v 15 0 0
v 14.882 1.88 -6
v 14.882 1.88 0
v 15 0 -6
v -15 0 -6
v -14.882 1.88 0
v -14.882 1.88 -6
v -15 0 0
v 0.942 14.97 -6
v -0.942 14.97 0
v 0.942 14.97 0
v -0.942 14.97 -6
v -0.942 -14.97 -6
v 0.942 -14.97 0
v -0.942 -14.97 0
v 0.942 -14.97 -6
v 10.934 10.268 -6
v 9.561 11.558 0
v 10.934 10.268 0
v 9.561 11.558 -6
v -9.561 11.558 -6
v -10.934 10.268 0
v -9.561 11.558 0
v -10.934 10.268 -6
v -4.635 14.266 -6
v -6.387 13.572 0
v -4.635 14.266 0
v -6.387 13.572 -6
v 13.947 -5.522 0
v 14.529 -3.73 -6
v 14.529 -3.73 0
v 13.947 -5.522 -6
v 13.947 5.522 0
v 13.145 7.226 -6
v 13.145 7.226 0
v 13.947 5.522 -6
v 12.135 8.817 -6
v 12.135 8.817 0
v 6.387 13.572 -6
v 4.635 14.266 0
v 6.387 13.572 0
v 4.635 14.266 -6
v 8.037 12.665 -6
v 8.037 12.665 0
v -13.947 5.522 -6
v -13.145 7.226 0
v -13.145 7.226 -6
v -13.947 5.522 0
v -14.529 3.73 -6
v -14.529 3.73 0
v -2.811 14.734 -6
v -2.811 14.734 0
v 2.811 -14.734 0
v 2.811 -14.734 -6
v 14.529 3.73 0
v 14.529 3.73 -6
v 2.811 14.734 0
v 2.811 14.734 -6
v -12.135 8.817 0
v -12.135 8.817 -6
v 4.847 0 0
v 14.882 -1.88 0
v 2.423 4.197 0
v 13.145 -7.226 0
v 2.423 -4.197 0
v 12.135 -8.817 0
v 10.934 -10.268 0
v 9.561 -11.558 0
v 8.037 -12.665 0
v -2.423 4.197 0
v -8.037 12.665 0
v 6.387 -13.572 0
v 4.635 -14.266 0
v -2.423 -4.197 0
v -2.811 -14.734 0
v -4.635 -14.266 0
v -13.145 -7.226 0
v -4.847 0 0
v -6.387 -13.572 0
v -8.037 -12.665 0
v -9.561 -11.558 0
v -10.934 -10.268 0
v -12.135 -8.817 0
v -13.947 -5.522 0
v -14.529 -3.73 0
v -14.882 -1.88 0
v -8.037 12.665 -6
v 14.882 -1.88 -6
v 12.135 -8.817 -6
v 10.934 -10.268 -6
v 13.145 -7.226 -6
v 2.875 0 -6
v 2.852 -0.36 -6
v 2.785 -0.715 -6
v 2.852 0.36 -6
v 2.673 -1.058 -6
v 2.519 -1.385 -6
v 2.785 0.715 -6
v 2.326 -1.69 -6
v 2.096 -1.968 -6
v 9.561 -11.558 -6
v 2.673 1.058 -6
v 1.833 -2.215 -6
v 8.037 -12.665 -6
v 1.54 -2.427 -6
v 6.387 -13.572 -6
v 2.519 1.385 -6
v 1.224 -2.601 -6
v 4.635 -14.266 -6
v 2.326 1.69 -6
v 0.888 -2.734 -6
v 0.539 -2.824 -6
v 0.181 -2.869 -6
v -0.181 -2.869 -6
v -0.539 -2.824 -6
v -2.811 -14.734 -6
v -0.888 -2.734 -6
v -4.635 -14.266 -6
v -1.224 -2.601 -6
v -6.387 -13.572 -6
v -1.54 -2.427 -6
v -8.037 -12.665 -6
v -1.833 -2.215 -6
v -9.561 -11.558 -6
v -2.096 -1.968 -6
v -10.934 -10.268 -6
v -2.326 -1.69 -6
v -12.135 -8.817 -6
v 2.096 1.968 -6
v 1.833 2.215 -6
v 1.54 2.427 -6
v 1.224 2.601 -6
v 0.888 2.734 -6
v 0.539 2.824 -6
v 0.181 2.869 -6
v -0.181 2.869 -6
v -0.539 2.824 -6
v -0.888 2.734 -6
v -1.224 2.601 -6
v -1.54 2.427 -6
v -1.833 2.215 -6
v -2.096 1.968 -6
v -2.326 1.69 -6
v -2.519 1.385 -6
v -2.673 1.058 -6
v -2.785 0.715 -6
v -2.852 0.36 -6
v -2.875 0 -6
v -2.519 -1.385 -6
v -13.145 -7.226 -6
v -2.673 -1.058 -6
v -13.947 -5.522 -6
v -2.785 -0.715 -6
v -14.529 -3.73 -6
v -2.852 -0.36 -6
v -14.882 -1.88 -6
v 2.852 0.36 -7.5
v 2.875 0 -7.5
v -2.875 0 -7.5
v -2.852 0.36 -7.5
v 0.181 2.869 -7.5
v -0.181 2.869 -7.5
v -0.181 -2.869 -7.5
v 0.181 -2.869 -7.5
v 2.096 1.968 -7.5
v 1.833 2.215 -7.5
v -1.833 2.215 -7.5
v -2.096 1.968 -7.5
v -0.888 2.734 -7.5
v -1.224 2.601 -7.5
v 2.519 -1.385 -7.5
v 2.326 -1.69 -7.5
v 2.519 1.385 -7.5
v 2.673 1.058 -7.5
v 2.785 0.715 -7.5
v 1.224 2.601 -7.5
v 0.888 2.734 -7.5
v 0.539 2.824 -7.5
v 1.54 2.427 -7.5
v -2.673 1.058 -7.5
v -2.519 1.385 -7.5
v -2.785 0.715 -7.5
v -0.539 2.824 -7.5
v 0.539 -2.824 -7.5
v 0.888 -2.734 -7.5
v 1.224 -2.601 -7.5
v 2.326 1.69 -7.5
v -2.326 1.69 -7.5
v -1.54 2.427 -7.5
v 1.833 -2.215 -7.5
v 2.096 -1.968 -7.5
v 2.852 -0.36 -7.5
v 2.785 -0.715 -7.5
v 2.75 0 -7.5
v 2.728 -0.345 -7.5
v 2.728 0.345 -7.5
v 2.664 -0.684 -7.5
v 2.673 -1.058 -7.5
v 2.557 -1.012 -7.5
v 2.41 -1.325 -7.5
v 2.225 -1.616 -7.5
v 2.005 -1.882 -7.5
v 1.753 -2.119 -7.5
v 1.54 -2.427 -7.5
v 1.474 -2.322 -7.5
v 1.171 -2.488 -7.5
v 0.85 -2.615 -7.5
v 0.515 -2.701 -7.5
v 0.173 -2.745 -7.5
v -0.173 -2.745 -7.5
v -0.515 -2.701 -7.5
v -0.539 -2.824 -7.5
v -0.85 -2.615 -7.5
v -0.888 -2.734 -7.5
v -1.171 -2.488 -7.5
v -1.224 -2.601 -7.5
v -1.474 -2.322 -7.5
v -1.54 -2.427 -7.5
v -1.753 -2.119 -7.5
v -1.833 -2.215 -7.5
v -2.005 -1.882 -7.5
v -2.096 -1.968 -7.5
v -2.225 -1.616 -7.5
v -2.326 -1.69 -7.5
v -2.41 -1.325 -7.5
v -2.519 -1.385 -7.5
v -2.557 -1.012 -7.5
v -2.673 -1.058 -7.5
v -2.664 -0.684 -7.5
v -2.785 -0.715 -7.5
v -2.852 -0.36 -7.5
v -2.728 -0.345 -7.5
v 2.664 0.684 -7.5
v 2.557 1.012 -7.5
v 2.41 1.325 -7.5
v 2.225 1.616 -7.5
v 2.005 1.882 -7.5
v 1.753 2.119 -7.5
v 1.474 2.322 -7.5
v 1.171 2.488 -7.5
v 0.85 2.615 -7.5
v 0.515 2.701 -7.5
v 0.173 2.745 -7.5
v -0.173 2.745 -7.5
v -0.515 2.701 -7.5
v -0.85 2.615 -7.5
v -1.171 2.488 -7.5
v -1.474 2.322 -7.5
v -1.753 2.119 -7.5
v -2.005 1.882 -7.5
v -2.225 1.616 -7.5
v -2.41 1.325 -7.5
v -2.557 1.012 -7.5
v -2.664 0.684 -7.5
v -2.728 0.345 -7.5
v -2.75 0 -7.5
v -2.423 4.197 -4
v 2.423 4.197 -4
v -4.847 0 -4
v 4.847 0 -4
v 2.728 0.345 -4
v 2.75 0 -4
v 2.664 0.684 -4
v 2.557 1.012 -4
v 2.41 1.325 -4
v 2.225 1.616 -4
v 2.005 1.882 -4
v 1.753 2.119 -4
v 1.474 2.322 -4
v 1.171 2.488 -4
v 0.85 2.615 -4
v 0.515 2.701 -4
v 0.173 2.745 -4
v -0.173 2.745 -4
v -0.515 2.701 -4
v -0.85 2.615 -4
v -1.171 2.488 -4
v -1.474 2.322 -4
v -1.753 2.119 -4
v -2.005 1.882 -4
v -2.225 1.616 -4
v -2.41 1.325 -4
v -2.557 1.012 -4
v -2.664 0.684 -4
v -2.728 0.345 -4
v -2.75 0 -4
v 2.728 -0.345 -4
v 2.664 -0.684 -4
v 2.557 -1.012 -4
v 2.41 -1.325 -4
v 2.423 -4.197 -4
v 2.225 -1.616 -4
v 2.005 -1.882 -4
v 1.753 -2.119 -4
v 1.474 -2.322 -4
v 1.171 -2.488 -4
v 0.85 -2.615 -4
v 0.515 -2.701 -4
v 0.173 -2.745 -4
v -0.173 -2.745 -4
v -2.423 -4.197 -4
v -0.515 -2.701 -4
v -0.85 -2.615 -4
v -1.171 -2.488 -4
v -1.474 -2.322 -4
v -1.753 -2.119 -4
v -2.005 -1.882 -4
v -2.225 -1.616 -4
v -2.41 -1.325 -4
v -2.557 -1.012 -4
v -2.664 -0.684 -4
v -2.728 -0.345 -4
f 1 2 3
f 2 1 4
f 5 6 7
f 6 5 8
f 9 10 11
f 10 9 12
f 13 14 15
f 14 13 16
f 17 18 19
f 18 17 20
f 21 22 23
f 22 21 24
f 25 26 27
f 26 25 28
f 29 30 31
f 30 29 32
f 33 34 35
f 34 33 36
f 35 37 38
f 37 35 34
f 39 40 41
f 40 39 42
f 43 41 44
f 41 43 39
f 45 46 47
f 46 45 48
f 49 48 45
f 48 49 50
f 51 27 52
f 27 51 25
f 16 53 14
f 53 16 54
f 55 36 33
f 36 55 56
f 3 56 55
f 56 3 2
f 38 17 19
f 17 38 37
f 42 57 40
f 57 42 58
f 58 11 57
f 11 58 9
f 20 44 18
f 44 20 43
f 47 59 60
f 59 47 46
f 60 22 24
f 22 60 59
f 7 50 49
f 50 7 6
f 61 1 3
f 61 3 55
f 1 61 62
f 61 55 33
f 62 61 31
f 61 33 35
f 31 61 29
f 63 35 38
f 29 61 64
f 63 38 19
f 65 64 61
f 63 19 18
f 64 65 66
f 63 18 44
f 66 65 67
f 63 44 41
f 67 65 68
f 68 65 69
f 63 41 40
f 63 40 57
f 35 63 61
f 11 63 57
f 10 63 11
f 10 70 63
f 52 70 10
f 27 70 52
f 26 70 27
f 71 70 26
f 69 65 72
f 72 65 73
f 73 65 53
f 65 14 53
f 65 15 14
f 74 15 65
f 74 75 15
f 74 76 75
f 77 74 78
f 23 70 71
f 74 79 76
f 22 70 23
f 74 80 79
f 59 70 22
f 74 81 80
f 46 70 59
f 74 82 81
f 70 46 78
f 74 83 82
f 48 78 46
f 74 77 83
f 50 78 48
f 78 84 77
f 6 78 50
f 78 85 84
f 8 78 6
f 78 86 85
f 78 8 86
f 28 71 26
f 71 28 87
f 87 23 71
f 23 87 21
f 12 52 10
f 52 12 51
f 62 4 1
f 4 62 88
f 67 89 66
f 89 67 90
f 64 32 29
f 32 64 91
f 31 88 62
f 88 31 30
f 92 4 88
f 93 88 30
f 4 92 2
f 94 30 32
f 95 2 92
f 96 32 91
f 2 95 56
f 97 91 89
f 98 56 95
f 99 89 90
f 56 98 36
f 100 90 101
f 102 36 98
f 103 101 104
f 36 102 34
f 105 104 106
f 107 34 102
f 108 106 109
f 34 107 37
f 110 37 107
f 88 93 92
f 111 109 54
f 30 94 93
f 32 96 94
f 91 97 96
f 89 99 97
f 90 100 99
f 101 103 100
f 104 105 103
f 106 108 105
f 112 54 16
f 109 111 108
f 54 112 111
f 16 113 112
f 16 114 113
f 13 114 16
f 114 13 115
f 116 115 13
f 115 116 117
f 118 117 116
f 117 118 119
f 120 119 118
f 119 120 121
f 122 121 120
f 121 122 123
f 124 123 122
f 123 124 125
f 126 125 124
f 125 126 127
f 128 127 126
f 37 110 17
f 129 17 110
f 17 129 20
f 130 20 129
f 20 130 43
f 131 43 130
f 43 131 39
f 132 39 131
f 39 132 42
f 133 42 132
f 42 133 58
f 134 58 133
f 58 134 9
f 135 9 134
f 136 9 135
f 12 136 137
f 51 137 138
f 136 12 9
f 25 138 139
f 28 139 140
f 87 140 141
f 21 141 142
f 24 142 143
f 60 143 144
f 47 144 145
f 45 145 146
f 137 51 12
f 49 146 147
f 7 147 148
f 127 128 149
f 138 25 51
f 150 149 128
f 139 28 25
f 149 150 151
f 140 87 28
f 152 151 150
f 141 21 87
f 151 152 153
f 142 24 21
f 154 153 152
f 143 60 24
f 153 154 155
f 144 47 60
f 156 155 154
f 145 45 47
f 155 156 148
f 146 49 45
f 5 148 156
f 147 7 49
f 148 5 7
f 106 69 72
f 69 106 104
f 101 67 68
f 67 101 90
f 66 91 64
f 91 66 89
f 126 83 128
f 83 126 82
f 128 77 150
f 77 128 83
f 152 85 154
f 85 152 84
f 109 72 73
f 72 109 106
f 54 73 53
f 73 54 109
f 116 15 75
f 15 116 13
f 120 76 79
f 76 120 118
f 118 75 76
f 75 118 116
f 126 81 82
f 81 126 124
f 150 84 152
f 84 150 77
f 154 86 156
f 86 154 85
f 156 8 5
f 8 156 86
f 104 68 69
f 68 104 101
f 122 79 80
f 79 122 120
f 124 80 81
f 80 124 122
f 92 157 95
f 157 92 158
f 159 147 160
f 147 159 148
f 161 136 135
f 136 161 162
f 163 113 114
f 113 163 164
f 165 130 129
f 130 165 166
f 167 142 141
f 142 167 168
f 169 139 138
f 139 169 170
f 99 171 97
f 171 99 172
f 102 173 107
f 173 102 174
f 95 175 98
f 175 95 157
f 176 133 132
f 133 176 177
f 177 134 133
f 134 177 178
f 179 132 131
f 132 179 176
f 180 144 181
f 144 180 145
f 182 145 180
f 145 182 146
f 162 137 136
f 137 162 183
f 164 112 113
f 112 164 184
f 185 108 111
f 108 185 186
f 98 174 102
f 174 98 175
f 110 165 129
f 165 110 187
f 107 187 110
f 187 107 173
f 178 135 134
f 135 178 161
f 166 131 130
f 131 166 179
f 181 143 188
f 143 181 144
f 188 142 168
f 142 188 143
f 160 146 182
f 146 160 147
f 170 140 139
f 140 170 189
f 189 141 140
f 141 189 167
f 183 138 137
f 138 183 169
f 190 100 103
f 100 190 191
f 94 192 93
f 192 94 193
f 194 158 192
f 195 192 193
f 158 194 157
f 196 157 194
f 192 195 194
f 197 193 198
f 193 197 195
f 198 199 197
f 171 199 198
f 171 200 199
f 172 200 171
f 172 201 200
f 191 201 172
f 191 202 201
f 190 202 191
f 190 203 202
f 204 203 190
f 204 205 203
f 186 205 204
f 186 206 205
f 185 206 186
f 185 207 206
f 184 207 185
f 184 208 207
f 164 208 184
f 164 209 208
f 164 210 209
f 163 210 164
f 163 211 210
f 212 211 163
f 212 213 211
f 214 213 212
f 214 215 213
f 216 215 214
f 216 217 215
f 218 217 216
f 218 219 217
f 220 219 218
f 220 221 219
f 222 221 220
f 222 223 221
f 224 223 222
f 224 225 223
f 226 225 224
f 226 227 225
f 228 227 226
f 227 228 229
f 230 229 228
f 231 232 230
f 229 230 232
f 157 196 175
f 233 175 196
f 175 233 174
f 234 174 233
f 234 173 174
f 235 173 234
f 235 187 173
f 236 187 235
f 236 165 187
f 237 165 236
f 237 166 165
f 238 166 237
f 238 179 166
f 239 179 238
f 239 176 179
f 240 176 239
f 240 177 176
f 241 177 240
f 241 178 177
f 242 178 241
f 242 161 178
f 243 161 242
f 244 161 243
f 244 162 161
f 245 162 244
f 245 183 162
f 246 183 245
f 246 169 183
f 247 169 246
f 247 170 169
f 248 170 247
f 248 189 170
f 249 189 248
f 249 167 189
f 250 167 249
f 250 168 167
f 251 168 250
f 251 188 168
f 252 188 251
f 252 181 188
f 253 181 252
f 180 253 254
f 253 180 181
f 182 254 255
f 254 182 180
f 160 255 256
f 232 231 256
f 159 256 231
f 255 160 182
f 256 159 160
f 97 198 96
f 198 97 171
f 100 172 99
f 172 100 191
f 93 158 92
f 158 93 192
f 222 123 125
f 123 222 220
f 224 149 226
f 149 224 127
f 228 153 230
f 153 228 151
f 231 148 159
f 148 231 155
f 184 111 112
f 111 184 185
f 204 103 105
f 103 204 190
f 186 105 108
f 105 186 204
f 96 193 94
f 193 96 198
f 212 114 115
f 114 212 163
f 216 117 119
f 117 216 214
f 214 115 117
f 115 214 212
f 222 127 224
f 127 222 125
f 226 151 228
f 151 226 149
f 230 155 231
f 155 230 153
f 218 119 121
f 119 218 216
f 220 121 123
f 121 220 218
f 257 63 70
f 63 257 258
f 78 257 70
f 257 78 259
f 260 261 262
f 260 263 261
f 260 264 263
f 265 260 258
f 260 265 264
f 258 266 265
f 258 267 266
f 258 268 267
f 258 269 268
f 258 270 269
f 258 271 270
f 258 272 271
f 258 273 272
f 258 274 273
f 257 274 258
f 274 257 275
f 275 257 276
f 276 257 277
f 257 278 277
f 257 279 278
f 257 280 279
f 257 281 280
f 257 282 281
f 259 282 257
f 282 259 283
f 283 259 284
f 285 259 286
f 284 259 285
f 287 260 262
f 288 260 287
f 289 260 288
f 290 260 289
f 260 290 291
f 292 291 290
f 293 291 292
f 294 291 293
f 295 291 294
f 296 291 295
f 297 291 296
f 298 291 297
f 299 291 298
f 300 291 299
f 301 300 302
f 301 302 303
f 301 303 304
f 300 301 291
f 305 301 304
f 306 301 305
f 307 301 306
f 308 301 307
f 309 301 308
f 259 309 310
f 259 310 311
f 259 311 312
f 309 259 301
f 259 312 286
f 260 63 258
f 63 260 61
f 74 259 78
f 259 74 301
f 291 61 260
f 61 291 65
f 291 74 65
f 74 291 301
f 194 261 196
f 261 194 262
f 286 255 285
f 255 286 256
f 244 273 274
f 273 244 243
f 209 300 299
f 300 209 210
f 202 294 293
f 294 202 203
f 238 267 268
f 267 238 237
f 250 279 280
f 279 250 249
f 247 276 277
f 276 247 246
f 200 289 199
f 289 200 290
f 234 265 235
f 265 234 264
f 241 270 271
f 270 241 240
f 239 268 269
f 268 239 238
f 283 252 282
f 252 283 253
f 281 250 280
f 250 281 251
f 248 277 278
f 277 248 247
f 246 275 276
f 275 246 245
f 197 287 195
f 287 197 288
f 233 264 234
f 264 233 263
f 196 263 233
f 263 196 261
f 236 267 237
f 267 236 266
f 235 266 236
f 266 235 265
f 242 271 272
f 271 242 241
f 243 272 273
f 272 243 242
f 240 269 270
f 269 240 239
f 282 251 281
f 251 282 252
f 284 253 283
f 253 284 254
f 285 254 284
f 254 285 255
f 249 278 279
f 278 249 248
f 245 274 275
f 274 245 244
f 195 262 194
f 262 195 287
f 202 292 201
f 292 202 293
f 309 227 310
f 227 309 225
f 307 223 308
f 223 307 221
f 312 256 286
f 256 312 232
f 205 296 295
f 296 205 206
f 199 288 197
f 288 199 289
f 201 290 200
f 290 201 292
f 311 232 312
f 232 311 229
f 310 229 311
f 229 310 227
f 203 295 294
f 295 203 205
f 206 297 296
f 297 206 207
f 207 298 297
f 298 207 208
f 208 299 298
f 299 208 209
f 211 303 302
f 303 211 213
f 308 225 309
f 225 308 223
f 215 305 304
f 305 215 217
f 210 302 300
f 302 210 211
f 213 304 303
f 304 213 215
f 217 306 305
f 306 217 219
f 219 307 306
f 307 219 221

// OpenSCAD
$fn = 50;


difference() {
	union() {
		translate(v = [0, 0, -6.0000000000]) {
			cylinder(h = 6.0000000000, r = 15.0000000000);
		}
		translate(v = [0, 0, -7.5000000000]) {
			cylinder(h = 7.5000000000, r = 2.8750000000);
		}
	}
	union() {
		translate(v = [0, 0, 0]) {
			rotate(a = [0, 0, 0]) {
				difference() {
					union() {
						translate(v = [0, 0, -4]) {
							linear_extrude(height = 4) {
								polygon(points = [[4.8468000000, 0.0000000000], [2.4234000000, 4.1974519271], [-2.4234000000, 4.1974519271], [-4.8468000000, 0.0000000000], [-2.4234000000, -4.1974519271], [2.4234000000, -4.1974519271]]);
							}
						}
					}
					union();
				}
			}
		}
		#translate(v = [0, 0, -100.0000000000]) {
			cylinder(h = 200, r = 2.7500000000);
		}
	}
}
